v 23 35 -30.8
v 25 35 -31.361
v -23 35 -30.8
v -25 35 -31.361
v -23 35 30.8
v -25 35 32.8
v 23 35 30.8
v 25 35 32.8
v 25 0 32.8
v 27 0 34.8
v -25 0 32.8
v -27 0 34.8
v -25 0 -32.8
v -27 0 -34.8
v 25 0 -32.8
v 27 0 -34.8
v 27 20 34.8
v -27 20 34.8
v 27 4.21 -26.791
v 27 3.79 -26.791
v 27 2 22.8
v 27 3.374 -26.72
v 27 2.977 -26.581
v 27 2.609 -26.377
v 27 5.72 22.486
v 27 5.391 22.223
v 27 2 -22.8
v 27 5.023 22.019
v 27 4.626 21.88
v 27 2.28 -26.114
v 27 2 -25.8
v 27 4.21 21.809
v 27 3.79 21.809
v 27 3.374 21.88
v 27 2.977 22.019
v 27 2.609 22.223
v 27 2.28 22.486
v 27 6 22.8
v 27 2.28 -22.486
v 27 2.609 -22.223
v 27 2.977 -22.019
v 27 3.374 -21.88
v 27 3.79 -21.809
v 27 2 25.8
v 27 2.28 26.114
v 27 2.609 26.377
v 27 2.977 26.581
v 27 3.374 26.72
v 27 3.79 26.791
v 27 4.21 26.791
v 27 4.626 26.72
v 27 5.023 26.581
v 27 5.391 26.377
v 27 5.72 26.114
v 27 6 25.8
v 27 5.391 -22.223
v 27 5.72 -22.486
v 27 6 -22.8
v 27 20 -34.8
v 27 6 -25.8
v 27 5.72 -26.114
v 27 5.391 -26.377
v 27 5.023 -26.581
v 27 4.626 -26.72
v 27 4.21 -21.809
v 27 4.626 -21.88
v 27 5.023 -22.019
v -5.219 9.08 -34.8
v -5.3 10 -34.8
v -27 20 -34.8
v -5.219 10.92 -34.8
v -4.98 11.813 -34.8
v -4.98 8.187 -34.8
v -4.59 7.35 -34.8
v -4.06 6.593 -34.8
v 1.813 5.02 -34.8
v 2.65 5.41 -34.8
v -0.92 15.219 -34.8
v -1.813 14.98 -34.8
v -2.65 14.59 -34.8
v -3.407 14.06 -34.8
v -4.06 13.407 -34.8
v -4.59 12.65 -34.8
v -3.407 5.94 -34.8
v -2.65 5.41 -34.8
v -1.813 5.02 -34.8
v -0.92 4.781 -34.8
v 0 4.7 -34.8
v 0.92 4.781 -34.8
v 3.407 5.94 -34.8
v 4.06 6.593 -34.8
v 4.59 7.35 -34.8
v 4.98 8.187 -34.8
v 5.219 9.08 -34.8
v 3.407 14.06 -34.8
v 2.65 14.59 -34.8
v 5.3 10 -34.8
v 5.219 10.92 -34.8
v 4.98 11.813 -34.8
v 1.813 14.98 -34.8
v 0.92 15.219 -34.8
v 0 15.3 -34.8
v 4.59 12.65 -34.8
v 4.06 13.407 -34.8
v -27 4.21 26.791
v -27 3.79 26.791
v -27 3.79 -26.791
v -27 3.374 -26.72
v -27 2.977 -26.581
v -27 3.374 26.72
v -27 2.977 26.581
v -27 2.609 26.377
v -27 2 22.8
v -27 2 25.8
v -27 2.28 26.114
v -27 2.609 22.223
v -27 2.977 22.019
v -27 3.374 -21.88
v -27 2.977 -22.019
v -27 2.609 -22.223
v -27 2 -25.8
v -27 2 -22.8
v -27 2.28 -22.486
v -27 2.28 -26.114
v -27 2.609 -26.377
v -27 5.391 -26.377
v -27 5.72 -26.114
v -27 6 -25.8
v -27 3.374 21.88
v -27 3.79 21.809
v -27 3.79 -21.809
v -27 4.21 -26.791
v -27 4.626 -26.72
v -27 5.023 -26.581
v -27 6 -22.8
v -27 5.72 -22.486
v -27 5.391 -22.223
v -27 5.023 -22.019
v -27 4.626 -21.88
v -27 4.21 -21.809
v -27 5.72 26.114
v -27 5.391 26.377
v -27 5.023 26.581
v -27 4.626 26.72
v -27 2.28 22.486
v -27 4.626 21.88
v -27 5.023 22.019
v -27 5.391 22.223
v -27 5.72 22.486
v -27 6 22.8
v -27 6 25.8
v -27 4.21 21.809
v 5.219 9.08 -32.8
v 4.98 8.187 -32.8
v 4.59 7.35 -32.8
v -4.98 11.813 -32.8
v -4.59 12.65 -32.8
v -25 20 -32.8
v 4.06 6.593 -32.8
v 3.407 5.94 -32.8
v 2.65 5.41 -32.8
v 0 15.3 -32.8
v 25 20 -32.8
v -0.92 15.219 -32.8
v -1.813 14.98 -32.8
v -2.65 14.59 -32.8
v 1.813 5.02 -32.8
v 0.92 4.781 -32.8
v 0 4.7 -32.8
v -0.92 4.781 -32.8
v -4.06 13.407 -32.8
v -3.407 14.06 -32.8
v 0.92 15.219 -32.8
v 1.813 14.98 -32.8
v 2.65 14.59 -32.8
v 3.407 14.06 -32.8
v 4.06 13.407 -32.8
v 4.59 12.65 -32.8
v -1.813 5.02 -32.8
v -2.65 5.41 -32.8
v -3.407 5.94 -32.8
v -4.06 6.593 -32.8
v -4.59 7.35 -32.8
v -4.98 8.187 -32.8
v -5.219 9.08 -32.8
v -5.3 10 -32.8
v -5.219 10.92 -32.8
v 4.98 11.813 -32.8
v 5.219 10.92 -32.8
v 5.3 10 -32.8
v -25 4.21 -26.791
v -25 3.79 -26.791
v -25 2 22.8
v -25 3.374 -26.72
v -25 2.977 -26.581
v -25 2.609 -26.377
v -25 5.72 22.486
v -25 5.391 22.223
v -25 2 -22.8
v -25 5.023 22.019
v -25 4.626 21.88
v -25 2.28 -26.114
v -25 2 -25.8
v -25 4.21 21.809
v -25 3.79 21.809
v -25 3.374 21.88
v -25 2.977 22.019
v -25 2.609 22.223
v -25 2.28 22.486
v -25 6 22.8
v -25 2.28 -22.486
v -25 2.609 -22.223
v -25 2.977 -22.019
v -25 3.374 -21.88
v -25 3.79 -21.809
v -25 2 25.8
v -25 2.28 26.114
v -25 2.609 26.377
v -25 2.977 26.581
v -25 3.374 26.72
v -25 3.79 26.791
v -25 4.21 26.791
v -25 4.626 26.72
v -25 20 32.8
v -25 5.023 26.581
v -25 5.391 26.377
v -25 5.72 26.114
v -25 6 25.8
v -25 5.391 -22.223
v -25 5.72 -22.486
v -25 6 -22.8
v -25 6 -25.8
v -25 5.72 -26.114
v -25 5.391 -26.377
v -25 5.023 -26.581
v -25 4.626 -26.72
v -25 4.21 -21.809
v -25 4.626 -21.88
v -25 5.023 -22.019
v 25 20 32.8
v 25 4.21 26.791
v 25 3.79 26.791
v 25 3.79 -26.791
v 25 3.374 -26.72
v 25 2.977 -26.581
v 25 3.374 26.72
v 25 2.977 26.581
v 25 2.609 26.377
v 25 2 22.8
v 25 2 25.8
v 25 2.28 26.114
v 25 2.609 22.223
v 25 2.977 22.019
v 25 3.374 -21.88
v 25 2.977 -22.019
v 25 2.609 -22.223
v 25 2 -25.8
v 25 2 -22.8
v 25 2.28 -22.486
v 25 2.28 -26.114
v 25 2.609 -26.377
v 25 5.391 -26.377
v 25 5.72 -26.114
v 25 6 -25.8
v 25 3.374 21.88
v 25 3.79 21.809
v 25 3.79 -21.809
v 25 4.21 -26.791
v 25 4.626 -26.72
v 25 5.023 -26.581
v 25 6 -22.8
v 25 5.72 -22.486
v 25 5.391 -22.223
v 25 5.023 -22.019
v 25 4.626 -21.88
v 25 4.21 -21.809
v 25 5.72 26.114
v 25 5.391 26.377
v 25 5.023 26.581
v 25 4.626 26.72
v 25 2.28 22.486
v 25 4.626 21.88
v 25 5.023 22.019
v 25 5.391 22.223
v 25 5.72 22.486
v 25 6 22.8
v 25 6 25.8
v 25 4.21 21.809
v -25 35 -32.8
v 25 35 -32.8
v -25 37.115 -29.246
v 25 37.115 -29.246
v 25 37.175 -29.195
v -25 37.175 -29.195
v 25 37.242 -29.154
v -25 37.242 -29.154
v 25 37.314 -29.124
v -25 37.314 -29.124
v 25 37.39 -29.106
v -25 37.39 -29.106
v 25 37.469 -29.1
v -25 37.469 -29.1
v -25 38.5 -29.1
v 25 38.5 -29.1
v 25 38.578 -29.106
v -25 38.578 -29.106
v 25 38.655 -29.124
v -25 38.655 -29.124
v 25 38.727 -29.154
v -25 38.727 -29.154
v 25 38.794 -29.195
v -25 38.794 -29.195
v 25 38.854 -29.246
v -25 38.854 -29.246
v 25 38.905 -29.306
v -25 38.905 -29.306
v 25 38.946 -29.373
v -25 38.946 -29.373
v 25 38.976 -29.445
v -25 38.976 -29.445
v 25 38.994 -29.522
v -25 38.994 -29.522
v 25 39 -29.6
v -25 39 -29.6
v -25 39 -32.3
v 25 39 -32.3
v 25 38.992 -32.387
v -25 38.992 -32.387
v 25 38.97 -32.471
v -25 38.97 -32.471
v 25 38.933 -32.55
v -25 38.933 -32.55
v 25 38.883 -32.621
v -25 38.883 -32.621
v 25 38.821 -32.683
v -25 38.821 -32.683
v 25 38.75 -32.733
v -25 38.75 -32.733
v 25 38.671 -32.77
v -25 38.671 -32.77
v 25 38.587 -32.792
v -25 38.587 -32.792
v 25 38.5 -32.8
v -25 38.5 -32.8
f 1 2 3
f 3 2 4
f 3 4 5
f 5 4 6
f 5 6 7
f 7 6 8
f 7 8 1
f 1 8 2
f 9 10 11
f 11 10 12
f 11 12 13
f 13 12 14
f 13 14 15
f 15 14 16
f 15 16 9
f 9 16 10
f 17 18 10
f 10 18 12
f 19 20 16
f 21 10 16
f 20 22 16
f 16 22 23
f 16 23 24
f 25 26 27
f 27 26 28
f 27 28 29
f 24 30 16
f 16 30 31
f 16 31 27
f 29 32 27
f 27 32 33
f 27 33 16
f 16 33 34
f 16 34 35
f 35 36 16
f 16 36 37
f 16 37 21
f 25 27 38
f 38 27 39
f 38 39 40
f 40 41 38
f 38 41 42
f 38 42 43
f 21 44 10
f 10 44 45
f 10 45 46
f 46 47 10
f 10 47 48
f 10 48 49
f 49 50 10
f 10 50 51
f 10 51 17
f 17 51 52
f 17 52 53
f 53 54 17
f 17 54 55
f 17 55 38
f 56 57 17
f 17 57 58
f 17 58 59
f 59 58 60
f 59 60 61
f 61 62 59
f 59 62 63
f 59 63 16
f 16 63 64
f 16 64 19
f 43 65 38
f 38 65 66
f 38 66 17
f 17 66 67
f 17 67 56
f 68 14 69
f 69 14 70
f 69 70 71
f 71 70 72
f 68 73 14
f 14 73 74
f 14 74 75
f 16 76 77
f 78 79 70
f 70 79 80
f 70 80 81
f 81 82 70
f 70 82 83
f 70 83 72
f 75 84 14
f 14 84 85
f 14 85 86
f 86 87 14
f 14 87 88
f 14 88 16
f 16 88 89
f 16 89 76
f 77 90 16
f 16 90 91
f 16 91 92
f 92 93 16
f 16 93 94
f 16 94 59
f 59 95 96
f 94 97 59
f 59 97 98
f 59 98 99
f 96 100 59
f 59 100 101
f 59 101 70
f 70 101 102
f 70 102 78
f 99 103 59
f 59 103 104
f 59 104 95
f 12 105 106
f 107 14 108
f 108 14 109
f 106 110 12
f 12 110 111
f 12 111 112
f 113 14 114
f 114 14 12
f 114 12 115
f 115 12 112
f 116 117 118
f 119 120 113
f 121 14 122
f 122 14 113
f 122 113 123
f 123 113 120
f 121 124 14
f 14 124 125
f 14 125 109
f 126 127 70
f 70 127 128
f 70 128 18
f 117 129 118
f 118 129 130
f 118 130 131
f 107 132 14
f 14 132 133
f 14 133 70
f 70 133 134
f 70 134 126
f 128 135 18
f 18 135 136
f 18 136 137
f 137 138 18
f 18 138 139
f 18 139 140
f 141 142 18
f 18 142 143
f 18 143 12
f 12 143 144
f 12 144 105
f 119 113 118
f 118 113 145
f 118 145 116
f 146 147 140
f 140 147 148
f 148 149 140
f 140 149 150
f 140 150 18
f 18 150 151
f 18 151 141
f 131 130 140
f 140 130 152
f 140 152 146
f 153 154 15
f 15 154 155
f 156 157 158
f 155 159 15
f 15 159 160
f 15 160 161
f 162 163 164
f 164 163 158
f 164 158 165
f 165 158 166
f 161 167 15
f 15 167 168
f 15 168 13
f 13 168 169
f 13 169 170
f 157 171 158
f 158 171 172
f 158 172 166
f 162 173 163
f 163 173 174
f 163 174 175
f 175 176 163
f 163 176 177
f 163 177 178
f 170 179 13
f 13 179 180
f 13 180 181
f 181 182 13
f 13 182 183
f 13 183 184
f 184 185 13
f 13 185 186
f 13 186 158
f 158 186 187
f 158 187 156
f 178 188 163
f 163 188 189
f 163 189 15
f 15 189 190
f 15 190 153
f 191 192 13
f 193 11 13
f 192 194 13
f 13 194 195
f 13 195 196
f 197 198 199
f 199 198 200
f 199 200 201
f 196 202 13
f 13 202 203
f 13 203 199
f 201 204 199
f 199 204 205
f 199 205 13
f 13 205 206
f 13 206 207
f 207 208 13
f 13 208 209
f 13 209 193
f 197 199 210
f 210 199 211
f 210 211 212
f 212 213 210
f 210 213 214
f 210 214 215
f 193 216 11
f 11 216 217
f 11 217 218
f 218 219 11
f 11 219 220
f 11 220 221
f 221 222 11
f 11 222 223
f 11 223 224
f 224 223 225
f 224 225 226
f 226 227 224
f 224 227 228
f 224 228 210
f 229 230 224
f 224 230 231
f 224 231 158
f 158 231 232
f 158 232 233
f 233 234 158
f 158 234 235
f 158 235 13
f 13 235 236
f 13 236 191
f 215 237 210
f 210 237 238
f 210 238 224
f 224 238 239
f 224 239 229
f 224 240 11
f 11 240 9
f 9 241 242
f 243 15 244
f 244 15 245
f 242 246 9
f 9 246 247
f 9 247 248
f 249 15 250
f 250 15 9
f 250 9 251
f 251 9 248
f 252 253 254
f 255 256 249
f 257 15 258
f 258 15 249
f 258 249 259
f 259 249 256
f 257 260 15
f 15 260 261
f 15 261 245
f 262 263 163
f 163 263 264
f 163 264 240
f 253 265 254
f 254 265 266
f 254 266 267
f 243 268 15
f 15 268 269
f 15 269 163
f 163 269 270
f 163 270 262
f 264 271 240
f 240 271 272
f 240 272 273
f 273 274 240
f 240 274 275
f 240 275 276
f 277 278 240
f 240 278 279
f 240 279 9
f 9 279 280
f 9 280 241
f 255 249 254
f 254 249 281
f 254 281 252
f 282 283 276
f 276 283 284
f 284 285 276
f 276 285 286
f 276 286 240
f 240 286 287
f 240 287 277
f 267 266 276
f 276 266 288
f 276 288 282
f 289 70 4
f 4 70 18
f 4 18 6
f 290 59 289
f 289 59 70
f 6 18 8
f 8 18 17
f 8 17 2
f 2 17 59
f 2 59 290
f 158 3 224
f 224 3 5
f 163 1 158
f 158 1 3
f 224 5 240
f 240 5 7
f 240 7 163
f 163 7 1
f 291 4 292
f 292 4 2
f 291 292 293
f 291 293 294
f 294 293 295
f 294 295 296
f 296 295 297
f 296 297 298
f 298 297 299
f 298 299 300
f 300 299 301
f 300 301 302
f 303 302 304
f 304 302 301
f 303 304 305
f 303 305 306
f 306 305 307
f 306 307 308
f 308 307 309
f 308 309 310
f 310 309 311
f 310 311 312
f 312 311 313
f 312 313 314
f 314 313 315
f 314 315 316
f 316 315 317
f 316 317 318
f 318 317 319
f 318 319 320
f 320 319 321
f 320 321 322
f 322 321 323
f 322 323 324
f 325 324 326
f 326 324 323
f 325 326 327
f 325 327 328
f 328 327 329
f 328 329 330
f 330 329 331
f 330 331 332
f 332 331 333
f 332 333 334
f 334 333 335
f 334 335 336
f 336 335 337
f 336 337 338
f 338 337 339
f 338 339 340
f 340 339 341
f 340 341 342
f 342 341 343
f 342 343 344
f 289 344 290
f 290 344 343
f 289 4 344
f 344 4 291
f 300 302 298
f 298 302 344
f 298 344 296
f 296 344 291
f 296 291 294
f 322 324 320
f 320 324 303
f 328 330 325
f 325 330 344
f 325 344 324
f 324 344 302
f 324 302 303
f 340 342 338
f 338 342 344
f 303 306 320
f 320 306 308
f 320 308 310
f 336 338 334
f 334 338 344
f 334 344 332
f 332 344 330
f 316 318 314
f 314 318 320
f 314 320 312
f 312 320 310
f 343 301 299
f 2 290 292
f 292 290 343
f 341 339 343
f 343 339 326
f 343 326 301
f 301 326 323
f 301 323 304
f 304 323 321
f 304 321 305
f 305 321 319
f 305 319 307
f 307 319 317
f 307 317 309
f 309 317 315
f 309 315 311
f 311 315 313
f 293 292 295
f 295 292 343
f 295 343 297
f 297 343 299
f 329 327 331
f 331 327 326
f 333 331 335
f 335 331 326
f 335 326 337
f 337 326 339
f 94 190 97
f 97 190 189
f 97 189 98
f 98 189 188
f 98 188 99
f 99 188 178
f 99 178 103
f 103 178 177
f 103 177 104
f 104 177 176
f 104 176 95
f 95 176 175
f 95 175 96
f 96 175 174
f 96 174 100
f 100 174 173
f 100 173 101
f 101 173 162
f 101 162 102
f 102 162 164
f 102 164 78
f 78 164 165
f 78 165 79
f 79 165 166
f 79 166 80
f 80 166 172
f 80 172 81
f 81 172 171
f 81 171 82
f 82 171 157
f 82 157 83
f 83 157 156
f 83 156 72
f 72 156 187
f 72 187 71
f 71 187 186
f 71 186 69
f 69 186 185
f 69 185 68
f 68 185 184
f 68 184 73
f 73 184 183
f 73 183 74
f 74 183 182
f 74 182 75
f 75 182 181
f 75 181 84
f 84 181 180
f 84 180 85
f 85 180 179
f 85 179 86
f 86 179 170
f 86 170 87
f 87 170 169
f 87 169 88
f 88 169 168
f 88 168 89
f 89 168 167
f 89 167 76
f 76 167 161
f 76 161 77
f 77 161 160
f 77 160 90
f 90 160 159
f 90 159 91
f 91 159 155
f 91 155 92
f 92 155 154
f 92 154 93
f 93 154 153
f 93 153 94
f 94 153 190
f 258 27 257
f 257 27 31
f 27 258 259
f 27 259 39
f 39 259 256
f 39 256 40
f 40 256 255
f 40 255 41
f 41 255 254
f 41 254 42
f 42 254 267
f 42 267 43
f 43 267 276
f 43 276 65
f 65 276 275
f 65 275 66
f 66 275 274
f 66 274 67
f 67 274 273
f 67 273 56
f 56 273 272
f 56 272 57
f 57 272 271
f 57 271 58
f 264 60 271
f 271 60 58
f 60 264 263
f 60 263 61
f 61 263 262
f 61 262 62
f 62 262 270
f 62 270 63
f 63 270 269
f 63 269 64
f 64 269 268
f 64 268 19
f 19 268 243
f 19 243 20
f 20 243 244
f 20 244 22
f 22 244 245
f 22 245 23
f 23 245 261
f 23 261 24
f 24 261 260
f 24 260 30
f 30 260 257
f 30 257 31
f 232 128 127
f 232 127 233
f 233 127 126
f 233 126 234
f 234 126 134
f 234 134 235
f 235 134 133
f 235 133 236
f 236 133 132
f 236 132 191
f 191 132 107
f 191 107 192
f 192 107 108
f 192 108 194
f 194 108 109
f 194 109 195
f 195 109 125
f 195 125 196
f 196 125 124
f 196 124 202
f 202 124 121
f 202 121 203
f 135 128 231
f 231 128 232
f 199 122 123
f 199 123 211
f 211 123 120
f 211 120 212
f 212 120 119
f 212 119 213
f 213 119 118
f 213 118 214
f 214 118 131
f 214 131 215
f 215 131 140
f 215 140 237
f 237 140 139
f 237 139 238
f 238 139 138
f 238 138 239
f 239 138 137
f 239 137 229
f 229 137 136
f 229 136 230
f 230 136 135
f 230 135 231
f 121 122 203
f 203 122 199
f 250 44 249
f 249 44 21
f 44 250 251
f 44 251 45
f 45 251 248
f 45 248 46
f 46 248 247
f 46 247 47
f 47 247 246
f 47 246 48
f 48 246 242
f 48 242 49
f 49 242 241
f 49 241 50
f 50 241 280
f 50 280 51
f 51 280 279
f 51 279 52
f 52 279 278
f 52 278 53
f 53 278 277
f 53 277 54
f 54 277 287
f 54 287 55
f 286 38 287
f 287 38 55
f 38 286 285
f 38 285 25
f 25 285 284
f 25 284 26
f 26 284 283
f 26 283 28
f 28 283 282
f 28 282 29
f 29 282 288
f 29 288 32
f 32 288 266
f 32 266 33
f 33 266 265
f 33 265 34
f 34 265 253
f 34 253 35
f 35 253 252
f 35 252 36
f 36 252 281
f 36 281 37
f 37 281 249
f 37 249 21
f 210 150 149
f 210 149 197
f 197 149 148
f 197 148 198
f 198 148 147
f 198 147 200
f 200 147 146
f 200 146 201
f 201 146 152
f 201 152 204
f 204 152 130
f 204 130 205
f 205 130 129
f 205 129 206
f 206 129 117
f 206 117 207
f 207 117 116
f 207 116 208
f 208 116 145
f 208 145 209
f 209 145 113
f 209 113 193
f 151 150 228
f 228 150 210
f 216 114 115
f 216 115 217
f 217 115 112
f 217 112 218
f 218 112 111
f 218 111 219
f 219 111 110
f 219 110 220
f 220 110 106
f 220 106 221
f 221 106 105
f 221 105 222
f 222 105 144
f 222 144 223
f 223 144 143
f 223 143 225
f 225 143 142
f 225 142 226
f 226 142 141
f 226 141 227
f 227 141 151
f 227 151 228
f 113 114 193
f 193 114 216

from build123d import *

# Parameters (mm, degrees)
BOSS_EXTRUDE1_DEPTH = 20
LOFT1_START         = -34.8
LOFT1_DEPTH         = 69.6
LOFT1_START_2       = -28
LOFT1_2_DEPTH       = 56
BOSS_EXTRUDE2_START = -2
BOSS_EXTRUDE2_DEPTH = 50
BOSS_EXTRUDE3_DEPTH = 2.3
BOSS_EXTRUDE4_DEPTH = 2.3
CUT_EXTRUDE1_START  = -69.6
SKETCH7_R           = 5.3
CUT_EXTRUDE1_DEPTH  = 2
CUT_EXTRUDE2_DEPTH  = 70


with BuildPart() as part:
    # Sketch1 → Boss-Extrude1 (new body)
    with BuildSketch(Plane(origin=(0, 0, 0), x_dir=(1, 0, 0), z_dir=(0, 1, 0))):
        Polygon((27, 34.8), (-27, 34.8), (-27, 0), (-27, -34.8), (27, -34.8), (27, 0), align=None)
        Polygon((25, 0), (25, 32.8), (-25, 32.8), (-25, 0), (-25, -32.8), (25, -32.8), align=None, mode=Mode.SUBTRACT)
    extrude(amount=BOSS_EXTRUDE1_DEPTH)

    # Loft1: read off the stored shape, not the designer's step
    # Loft1 outline → Loft1 (add)
    with BuildSketch(Plane.XY.offset(LOFT1_START)):
        Polygon((-27, 20), (27, 20), (25, 35), (-25, 35), align=None)
    extrude(amount=LOFT1_DEPTH)

    # Loft1 2 outline → Loft1 2 (cut)
    with BuildSketch(Plane.YZ.offset(LOFT1_START_2)):
        Polygon((20, 34.8), (35, 32.8), (35, 34.8), align=None)
        Polygon((35, -32.8), (20, -34.8), (35, -34.8), align=None)
    extrude(amount=LOFT1_2_DEPTH, mode=Mode.SUBTRACT)

    # Cut-Loft1: read off the stored shape, not the designer's step
    # Cut-Loft1: loft between two sections, ruled curve by curve
    cut_loft1_from = [
        Edge.make_line((-25, 20, 32.8), (-25, 20, -32.8)),
        Edge.make_line((-25, 20, -32.8), (25, 20, -32.8)),
        Edge.make_line((25, 20, 32.8), (-25, 20, 32.8)),
        Edge.make_line((25, 20, -32.8), (25, 20, 32.8)),
    ]
    cut_loft1_to = [
        Edge.make_line((-23, 35, 30.8), (-23, 35, -30.8)),
        Edge.make_line((-23, 35, -30.8), (23, 35, -30.8)),
        Edge.make_line((23, 35, 30.8), (-23, 35, 30.8)),
        Edge.make_line((23, 35, -30.8), (23, 35, 30.8)),
    ]
    cut_loft1 = Solid(Shell([*[Face.make_surface_from_curves(cut_loft1_from[k], cut_loft1_to[k]) for k in range(4)], Face(Wire(cut_loft1_from)), Face(Wire(cut_loft1_to))]))
    add(cut_loft1, mode=Mode.SUBTRACT)

    # Sketch2 → Boss-Extrude2 (add)
    with BuildSketch(Plane(origin=(27, 0, 0), x_dir=(0, 0, -1), z_dir=(1, 0, 0)).offset(BOSS_EXTRUDE2_START)):
        with BuildLine():
            Line((32.8, 35), (32.8, 38.5))
            ThreePointArc((32.8, 38.5), (32.653553391, 38.853553391), (32.3, 39))
            Line((32.3, 39), (29.6, 39))
            ThreePointArc((29.6, 39), (29.246446609, 38.853553391), (29.1, 38.5))
            Line((29.1, 38.5), (29.1, 37.468550682))
            ThreePointArc((29.1, 37.468550682), (29.138060234, 37.277208966), (29.246446609, 37.114997291))
            Line((29.246446609, 37.114997291), (31.361443901, 35))
            Line((31.361443901, 35), (32.8, 35))
        make_face()
    extrude(amount=-BOSS_EXTRUDE2_DEPTH)

    # Sketch7 → Cut-Extrude1 (cut)
    with BuildSketch(Plane.XY.offset(34.8).offset(CUT_EXTRUDE1_START)):
        with Locations((0, 10)):
            Circle(SKETCH7_R)
    extrude(amount=CUT_EXTRUDE1_DEPTH, mode=Mode.SUBTRACT)

    # Sketch8 → Cut-Extrude2 (cut)
    with BuildSketch(Plane.ZY.offset(27)):
        with BuildLine():
            Line((-25.8, 6), (-22.8, 6))
            ThreePointArc((-22.8, 6), (-21.8, 4), (-22.8, 2))
            Line((-22.8, 2), (-25.8, 2))
            ThreePointArc((-25.8, 2), (-26.8, 4), (-25.8, 6))
        make_face()
        with BuildLine():
            Line((22.8, 6), (25.8, 6))
            ThreePointArc((25.8, 6), (26.8, 4), (25.8, 2))
            Line((25.8, 2), (22.8, 2))
            ThreePointArc((22.8, 2), (21.8, 4), (22.8, 6))
        make_face()
    extrude(amount=-CUT_EXTRUDE2_DEPTH, mode=Mode.SUBTRACT)


with BuildPart() as body_2:
    # Sketch5 → Boss-Extrude3 (new body)
    with BuildSketch(Plane.XZ):
        with BuildLine():
            Line((-25, -34.8), (-25, -9.8))
            ThreePointArc((-25, -9.8), (0, 15.2), (25, -9.8))
            Line((25, -9.8), (25, -34.8))
            Line((25, -34.8), (27, -34.8))
            Line((27, -34.8), (27, 34.8))
            Line((27, 34.8), (-27, 34.8))
            Line((-27, 34.8), (-27, -34.8))
            Line((-27, -34.8), (-25, -34.8))
        make_face()
    extrude(amount=BOSS_EXTRUDE3_DEPTH)

    # Sketch6 → Boss-Extrude4 (add)
    with BuildSketch(Plane.XZ.offset(2.3)):
        with BuildLine():
            Line((22.7, -34.8), (27, -34.8))
            Line((27, -34.8), (27, 34.8))
            Line((27, 34.8), (-27, 34.8))
            Line((-27, 34.8), (-27, -34.8))
            Line((-27, -34.8), (-22.7, -34.8))
            Line((-22.7, -34.8), (-22.7, -9.8))
            ThreePointArc((-22.7, -9.8), (0, 12.9), (22.7, -9.8))
            Line((22.7, -9.8), (22.7, -34.8))
        make_face()
    extrude(amount=BOSS_EXTRUDE4_DEPTH)


solid = part.part
